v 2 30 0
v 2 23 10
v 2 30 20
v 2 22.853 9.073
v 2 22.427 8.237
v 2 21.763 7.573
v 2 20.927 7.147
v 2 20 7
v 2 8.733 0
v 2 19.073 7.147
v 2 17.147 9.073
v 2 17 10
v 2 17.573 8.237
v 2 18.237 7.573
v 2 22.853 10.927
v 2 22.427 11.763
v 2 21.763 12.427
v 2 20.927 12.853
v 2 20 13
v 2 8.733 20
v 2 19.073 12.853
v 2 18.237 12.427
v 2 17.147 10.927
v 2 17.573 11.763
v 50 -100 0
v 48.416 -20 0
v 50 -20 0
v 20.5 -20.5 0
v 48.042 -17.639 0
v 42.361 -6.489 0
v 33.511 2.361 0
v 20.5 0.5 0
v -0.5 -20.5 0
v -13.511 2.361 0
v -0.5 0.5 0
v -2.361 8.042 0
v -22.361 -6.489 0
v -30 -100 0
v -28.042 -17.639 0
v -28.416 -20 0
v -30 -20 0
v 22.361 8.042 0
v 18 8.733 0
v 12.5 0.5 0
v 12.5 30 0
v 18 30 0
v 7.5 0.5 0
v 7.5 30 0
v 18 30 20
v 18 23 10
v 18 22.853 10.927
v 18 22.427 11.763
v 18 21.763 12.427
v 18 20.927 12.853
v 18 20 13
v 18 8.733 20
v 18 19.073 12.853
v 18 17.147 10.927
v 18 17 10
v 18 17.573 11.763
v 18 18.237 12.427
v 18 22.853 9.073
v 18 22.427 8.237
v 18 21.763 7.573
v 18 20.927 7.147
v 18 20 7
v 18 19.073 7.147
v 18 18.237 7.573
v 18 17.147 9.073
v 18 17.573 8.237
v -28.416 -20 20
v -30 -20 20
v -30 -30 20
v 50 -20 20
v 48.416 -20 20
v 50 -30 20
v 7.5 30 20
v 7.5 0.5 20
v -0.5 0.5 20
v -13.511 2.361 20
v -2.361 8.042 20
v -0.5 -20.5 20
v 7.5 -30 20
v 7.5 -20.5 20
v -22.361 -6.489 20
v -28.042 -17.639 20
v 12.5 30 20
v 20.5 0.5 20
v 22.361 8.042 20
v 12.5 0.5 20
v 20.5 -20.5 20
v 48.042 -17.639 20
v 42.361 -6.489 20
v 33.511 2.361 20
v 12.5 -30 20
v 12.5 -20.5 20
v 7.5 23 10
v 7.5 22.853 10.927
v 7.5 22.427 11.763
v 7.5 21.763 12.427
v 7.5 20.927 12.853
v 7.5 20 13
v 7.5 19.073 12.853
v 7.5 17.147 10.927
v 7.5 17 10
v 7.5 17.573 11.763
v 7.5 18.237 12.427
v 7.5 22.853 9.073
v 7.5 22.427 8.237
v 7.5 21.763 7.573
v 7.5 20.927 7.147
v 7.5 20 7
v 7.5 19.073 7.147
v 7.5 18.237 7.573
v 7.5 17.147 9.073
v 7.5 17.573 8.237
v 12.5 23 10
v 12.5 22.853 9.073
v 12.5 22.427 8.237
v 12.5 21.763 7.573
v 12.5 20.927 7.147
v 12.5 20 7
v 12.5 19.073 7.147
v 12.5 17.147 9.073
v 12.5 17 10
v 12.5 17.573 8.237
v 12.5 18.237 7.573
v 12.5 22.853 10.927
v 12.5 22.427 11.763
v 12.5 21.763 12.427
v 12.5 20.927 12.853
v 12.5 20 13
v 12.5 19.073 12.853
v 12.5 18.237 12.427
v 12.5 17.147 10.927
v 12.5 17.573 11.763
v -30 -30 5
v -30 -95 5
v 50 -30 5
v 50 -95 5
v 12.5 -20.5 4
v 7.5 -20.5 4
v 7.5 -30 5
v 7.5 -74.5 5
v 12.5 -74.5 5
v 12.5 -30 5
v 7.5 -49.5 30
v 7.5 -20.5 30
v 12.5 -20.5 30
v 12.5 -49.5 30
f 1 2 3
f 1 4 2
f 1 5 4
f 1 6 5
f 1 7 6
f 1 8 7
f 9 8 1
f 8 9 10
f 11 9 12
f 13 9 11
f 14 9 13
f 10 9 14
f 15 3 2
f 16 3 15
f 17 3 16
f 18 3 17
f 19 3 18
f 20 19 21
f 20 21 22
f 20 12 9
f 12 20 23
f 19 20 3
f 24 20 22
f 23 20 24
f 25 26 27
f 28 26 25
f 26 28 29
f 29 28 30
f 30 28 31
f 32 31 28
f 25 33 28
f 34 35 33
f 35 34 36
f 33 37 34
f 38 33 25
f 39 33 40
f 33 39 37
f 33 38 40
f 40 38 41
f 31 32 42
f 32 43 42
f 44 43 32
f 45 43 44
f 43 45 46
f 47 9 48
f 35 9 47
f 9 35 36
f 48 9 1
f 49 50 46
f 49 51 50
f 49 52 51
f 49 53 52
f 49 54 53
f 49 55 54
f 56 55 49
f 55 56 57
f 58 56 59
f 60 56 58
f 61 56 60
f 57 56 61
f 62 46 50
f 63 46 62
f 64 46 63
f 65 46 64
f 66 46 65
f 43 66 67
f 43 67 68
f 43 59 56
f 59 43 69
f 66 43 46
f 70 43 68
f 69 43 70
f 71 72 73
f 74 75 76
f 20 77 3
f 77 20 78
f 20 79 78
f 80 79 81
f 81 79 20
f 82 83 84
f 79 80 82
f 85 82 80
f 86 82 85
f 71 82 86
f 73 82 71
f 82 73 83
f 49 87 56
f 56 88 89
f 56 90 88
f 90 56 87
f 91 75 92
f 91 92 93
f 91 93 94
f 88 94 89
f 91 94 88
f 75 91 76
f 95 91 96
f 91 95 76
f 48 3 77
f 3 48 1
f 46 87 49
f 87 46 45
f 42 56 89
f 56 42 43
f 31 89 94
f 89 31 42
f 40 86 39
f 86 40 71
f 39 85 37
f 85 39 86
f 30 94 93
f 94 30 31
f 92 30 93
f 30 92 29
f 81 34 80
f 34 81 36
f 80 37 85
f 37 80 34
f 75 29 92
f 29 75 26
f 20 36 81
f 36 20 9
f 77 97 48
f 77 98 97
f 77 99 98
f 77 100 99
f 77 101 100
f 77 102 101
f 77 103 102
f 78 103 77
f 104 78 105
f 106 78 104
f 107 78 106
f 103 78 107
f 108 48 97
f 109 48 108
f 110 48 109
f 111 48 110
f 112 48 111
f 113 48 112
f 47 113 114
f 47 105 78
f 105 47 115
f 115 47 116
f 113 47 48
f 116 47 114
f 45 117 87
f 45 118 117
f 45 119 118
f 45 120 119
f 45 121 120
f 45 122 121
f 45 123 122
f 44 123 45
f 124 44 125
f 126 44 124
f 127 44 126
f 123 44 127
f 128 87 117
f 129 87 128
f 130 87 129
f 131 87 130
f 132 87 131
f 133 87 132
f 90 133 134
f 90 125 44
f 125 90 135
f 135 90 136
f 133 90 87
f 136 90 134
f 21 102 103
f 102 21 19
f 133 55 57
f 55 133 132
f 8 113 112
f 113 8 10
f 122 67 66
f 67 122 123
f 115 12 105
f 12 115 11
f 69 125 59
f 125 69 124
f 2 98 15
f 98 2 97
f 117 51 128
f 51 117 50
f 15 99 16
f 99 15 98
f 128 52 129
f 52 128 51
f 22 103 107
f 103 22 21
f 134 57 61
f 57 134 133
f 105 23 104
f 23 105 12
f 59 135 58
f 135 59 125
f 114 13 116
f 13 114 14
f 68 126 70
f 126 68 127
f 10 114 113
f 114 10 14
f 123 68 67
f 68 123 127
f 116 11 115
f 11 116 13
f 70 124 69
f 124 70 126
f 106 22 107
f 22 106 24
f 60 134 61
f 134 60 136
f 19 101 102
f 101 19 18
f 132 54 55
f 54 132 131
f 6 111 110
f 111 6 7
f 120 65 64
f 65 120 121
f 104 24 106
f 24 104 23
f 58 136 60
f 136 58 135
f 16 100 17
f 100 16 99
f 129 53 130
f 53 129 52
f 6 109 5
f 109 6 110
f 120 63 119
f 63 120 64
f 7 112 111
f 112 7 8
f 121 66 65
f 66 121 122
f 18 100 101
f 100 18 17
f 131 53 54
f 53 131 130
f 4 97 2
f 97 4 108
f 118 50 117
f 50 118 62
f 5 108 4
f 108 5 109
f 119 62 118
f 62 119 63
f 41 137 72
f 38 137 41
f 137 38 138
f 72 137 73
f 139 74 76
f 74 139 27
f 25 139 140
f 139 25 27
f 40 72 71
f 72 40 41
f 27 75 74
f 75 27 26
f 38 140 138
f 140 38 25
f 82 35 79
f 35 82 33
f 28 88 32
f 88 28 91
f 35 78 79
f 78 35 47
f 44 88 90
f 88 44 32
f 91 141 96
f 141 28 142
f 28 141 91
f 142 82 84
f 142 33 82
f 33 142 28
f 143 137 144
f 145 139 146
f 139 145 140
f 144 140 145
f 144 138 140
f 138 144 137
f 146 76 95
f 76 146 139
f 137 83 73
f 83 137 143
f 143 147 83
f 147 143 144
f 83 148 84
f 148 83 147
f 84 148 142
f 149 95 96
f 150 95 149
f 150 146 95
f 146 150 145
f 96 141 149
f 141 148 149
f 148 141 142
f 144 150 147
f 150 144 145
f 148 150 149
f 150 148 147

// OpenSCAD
translate([0,0,20])
rotate([180,0,0])
{
    difference() {
        
       union() {
            difference() {
                
                // presilha 
                union() {
                    // aletas da presilha
                    translate([2,-30,0])
                    cube ([16, 55, 20]);
                    
                    // reforco cilindrico ao redor da presilha
                    translate([10,30,00])
                    cylinder(r1=40, r2=40, h=20, $fn=20);
                }

                // espaco entre as abas da presilha
                translate([7.5,-35, -50])
                cube ([5, 40, 100]);
                
                // burao parafuso
                translate([-10, -20, 10])
                rotate([0, 90, 0])
                cylinder(r1=3, r2=3, h=50, $fn=20);
            }

            difference() {
                translate([-30, 20, -100])
                cube ([80, 80, 120]);

                translate([-50,-50,-130])
                rotate([-45, 0, 0])
                cube ([120, 200, 220]);
                
                translate([-50, 10, -140])
                cube ([120, 100, 140]);
                
                
            }

        }
        
        //tubo
        translate([-0.5,-0.5,-100])
        cube ([21, 21, 200]);
        
        // vao na parte de baixo do suporte
        translate([-55, 30, -110])
        cube ([120, 120, 125]);
    }

    // suporte inferior
    translate([10,220.5,16])
    rotate([180,0,0])
    difference() {
        translate([-2.5,100,0])
        cube ([5, 100, 100]);

        translate([-10,95,-50])
        rotate([45,0,0])    
        cube ([30, 300, 120]);
        
        translate([-50,0,26])
        cube ([300, 300, 50]);
    }

}    
